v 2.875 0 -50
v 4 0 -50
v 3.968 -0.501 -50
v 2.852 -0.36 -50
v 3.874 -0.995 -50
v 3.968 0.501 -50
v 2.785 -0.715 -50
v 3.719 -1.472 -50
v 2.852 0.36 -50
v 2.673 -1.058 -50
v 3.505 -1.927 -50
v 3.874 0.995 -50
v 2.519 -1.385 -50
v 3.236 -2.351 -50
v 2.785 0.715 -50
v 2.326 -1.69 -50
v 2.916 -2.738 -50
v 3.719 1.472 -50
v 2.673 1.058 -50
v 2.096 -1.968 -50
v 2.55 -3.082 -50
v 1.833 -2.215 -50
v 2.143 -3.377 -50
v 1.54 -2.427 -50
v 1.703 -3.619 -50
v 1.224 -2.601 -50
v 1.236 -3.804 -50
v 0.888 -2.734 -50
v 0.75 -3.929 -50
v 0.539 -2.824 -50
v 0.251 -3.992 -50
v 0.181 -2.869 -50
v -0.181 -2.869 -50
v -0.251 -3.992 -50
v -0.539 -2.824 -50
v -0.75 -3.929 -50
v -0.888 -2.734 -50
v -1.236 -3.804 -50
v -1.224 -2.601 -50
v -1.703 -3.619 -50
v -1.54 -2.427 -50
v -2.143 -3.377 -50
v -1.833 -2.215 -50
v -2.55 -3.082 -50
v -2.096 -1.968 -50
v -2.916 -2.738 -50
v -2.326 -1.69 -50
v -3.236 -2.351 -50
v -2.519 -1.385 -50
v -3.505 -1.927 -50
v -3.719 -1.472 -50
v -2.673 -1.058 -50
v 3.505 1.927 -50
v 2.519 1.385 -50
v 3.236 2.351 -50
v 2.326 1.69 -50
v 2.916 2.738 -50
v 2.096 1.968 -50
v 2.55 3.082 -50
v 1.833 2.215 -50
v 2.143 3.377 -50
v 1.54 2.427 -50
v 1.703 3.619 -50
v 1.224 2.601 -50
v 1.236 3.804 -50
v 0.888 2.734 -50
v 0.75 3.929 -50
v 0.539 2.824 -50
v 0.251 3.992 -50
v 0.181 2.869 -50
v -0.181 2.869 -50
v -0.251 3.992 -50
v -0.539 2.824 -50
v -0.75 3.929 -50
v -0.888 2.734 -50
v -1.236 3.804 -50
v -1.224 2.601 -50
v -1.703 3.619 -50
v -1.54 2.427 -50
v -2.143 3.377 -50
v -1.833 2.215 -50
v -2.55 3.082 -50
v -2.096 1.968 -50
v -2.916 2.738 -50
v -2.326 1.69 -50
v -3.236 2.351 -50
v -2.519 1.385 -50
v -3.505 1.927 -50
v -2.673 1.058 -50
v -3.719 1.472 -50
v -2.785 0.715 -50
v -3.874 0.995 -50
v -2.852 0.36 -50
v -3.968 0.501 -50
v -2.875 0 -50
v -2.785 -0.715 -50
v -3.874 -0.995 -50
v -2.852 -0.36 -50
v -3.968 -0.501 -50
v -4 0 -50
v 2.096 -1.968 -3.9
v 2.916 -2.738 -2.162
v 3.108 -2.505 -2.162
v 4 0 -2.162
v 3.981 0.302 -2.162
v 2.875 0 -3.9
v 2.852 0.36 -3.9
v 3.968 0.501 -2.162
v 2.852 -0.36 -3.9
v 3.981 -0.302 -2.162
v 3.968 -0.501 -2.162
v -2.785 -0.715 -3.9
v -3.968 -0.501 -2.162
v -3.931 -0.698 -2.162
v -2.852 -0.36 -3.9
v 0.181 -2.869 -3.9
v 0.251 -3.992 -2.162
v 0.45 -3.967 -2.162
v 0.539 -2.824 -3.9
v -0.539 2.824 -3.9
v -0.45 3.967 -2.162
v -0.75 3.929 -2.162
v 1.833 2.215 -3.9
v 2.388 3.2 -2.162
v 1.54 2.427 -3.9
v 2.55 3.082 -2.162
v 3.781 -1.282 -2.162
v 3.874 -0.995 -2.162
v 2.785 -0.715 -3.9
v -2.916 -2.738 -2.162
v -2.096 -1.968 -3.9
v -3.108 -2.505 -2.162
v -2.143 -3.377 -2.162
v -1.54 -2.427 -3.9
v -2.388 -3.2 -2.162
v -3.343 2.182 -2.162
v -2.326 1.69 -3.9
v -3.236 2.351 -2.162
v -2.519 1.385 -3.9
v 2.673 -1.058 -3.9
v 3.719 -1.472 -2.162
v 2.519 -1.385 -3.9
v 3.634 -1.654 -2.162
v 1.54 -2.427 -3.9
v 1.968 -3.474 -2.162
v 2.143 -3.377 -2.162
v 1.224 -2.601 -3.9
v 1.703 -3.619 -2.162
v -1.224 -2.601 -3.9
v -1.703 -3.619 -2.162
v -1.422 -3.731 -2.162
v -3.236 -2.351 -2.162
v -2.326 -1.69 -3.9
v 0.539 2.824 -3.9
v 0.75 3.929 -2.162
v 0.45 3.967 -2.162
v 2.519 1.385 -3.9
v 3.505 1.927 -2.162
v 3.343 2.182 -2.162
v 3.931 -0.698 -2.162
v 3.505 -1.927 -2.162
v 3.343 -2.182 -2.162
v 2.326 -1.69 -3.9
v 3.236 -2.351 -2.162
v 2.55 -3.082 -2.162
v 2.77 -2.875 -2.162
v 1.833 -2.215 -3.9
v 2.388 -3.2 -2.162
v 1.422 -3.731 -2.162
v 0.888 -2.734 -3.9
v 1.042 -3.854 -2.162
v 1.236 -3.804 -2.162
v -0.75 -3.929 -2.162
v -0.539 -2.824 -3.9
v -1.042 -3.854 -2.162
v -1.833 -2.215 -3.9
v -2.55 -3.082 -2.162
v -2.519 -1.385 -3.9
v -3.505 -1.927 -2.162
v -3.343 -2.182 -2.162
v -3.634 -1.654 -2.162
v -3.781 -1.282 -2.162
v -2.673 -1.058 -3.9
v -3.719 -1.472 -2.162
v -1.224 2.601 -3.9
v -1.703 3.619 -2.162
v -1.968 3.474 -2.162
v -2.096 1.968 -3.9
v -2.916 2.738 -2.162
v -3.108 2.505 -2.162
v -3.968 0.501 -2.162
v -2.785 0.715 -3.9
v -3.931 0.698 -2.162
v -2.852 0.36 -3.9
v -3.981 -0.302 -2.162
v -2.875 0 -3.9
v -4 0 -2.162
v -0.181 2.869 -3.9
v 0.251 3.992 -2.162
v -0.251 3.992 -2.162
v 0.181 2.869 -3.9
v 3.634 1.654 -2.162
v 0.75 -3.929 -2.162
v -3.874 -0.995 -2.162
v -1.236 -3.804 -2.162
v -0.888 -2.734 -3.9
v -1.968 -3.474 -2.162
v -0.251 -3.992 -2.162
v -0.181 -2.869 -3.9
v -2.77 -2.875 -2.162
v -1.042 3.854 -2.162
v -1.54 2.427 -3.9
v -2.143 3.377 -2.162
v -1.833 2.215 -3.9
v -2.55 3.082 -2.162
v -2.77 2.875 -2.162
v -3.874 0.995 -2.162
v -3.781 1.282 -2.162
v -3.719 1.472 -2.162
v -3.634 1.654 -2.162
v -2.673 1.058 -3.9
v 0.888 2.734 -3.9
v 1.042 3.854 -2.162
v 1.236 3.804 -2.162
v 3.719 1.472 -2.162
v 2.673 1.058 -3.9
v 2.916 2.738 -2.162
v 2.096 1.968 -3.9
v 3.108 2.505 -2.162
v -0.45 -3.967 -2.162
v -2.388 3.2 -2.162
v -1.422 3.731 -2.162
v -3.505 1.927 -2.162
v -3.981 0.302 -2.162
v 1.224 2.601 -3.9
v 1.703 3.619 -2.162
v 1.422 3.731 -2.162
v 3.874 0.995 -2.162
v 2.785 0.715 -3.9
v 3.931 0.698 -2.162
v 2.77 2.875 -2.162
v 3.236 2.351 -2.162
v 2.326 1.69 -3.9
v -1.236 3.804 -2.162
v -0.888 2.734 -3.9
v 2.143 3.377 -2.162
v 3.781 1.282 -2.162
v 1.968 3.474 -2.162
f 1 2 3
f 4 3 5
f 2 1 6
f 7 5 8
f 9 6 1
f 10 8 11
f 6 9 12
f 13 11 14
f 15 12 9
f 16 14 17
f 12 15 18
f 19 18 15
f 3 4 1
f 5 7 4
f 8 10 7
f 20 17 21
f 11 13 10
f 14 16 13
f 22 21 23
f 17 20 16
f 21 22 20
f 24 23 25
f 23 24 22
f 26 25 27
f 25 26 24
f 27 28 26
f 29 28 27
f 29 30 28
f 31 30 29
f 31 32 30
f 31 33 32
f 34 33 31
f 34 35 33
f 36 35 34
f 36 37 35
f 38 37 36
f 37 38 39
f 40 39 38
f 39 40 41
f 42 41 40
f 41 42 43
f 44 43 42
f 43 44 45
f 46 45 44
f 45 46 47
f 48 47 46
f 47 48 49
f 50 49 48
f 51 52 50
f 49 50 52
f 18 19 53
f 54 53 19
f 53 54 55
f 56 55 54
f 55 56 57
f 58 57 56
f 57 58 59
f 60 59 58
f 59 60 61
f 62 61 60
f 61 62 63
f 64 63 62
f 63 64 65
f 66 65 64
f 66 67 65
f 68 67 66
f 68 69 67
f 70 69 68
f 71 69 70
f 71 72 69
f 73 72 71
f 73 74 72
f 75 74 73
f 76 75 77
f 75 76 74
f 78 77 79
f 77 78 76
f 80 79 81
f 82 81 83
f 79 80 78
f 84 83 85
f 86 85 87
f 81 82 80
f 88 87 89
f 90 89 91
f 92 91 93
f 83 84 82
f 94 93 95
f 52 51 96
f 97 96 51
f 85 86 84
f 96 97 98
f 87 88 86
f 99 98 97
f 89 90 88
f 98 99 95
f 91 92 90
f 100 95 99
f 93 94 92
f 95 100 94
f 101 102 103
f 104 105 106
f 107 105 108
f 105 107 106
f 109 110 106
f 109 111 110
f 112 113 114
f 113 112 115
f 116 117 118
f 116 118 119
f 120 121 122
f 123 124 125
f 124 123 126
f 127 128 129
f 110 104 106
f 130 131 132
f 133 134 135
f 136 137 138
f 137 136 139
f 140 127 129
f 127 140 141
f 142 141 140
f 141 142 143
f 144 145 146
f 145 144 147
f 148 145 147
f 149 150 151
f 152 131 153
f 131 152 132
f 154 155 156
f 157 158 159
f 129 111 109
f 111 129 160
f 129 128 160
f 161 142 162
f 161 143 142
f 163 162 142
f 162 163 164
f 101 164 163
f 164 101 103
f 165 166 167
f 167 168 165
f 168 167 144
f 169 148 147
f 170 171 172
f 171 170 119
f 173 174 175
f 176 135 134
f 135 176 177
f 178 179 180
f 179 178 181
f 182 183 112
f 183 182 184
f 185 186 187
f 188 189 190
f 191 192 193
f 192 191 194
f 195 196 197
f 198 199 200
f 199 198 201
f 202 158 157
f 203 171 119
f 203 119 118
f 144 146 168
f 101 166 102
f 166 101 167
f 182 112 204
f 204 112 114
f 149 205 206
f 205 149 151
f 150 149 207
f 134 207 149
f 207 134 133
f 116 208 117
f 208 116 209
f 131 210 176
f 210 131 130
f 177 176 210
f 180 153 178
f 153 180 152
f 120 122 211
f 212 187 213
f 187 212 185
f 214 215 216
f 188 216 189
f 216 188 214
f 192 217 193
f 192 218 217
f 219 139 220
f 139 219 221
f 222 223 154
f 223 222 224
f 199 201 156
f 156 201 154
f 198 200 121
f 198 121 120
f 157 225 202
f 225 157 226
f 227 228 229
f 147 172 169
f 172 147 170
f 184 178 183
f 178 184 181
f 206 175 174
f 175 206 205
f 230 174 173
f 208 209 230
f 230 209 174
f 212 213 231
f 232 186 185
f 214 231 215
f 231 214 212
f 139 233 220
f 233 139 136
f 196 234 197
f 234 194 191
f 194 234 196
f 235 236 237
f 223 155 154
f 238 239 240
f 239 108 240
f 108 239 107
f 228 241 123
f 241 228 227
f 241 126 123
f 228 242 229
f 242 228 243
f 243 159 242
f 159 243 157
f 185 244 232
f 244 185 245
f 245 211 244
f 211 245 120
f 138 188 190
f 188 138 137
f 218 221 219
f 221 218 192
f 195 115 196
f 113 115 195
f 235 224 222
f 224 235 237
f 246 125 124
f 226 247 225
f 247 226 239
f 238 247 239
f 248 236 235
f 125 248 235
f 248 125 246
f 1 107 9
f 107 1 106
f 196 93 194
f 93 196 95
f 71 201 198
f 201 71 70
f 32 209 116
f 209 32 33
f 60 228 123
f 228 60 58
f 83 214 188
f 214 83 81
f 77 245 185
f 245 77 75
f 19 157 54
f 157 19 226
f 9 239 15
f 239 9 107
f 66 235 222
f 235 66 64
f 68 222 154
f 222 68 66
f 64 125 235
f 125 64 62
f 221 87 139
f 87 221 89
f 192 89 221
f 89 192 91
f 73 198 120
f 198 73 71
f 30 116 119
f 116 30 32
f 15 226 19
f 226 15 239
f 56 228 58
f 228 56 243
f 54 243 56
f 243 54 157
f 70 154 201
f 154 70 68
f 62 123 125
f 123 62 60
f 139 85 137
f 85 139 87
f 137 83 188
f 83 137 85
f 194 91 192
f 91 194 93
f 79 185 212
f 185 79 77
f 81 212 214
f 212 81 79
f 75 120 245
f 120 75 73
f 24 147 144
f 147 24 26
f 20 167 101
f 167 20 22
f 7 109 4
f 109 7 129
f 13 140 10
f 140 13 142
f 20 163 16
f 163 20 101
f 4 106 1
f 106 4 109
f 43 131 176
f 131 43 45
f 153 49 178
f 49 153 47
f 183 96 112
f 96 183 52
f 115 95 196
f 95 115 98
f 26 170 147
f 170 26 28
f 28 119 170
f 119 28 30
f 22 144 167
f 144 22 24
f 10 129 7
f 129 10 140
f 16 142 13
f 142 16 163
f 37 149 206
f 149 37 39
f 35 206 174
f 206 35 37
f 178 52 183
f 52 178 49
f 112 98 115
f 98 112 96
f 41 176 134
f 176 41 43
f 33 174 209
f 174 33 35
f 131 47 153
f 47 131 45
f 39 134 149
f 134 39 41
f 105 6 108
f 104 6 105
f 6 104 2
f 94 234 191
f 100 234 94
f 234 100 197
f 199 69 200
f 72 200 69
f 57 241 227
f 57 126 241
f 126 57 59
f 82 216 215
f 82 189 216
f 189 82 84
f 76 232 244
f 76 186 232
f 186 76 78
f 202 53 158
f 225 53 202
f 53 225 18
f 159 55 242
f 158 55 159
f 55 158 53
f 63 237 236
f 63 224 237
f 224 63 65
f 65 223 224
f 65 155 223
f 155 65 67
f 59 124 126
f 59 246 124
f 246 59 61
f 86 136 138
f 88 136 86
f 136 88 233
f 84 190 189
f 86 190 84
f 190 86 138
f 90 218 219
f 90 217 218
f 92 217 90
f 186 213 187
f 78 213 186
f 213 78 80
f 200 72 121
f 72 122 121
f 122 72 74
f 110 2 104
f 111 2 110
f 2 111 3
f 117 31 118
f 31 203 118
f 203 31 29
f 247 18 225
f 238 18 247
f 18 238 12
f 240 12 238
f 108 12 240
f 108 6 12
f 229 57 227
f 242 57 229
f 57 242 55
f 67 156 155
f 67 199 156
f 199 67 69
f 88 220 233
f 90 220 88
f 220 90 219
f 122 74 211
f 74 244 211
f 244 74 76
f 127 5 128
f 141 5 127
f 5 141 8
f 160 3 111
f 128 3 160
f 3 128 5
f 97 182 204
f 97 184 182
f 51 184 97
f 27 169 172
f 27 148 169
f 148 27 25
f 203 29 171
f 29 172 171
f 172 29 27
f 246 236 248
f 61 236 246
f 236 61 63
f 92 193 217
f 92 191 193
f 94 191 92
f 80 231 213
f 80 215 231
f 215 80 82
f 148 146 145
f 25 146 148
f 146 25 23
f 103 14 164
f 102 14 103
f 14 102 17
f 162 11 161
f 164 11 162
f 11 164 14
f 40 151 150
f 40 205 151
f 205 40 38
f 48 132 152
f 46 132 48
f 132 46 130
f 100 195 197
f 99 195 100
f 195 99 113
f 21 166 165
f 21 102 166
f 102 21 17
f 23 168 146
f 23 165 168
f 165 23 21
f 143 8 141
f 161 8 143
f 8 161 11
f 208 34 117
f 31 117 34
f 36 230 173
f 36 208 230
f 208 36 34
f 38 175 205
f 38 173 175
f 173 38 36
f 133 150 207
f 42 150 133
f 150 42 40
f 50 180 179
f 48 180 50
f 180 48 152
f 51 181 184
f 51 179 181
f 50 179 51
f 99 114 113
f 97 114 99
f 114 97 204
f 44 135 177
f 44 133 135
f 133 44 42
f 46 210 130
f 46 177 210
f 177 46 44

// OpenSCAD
$fn = 50;


difference() {
	union() {
		translate(v = [0, 0, -50.0000000000]) {
			cylinder(h = 50, r = 4.0000000000);
		}
		cylinder(h = 0, r = 7.0000000000);
	}
	union() {
		translate(v = [0, 0, 0]) {
			rotate(a = [0, 0, 0]) {
				difference() {
					union() {
						#translate(v = [0, 0, -50.0000000000]) {
							cylinder(h = 50, r = 2.6000000000);
						}
						#translate(v = [0, 0, -3.9000000000]) {
							cylinder(h = 3.9000000000, r = 4.0000000000, r1 = 2.8750000000, r2 = 5.4000000000);
						}
						#translate(v = [0, 0, -50.0000000000]) {
							cylinder(h = 50, r = 2.8750000000);
						}
						#translate(v = [0, 0, -50.0000000000]) {
							cylinder(h = 50, r = 2.6000000000);
						}
					}
					union();
				}
			}
		}
	}
}
